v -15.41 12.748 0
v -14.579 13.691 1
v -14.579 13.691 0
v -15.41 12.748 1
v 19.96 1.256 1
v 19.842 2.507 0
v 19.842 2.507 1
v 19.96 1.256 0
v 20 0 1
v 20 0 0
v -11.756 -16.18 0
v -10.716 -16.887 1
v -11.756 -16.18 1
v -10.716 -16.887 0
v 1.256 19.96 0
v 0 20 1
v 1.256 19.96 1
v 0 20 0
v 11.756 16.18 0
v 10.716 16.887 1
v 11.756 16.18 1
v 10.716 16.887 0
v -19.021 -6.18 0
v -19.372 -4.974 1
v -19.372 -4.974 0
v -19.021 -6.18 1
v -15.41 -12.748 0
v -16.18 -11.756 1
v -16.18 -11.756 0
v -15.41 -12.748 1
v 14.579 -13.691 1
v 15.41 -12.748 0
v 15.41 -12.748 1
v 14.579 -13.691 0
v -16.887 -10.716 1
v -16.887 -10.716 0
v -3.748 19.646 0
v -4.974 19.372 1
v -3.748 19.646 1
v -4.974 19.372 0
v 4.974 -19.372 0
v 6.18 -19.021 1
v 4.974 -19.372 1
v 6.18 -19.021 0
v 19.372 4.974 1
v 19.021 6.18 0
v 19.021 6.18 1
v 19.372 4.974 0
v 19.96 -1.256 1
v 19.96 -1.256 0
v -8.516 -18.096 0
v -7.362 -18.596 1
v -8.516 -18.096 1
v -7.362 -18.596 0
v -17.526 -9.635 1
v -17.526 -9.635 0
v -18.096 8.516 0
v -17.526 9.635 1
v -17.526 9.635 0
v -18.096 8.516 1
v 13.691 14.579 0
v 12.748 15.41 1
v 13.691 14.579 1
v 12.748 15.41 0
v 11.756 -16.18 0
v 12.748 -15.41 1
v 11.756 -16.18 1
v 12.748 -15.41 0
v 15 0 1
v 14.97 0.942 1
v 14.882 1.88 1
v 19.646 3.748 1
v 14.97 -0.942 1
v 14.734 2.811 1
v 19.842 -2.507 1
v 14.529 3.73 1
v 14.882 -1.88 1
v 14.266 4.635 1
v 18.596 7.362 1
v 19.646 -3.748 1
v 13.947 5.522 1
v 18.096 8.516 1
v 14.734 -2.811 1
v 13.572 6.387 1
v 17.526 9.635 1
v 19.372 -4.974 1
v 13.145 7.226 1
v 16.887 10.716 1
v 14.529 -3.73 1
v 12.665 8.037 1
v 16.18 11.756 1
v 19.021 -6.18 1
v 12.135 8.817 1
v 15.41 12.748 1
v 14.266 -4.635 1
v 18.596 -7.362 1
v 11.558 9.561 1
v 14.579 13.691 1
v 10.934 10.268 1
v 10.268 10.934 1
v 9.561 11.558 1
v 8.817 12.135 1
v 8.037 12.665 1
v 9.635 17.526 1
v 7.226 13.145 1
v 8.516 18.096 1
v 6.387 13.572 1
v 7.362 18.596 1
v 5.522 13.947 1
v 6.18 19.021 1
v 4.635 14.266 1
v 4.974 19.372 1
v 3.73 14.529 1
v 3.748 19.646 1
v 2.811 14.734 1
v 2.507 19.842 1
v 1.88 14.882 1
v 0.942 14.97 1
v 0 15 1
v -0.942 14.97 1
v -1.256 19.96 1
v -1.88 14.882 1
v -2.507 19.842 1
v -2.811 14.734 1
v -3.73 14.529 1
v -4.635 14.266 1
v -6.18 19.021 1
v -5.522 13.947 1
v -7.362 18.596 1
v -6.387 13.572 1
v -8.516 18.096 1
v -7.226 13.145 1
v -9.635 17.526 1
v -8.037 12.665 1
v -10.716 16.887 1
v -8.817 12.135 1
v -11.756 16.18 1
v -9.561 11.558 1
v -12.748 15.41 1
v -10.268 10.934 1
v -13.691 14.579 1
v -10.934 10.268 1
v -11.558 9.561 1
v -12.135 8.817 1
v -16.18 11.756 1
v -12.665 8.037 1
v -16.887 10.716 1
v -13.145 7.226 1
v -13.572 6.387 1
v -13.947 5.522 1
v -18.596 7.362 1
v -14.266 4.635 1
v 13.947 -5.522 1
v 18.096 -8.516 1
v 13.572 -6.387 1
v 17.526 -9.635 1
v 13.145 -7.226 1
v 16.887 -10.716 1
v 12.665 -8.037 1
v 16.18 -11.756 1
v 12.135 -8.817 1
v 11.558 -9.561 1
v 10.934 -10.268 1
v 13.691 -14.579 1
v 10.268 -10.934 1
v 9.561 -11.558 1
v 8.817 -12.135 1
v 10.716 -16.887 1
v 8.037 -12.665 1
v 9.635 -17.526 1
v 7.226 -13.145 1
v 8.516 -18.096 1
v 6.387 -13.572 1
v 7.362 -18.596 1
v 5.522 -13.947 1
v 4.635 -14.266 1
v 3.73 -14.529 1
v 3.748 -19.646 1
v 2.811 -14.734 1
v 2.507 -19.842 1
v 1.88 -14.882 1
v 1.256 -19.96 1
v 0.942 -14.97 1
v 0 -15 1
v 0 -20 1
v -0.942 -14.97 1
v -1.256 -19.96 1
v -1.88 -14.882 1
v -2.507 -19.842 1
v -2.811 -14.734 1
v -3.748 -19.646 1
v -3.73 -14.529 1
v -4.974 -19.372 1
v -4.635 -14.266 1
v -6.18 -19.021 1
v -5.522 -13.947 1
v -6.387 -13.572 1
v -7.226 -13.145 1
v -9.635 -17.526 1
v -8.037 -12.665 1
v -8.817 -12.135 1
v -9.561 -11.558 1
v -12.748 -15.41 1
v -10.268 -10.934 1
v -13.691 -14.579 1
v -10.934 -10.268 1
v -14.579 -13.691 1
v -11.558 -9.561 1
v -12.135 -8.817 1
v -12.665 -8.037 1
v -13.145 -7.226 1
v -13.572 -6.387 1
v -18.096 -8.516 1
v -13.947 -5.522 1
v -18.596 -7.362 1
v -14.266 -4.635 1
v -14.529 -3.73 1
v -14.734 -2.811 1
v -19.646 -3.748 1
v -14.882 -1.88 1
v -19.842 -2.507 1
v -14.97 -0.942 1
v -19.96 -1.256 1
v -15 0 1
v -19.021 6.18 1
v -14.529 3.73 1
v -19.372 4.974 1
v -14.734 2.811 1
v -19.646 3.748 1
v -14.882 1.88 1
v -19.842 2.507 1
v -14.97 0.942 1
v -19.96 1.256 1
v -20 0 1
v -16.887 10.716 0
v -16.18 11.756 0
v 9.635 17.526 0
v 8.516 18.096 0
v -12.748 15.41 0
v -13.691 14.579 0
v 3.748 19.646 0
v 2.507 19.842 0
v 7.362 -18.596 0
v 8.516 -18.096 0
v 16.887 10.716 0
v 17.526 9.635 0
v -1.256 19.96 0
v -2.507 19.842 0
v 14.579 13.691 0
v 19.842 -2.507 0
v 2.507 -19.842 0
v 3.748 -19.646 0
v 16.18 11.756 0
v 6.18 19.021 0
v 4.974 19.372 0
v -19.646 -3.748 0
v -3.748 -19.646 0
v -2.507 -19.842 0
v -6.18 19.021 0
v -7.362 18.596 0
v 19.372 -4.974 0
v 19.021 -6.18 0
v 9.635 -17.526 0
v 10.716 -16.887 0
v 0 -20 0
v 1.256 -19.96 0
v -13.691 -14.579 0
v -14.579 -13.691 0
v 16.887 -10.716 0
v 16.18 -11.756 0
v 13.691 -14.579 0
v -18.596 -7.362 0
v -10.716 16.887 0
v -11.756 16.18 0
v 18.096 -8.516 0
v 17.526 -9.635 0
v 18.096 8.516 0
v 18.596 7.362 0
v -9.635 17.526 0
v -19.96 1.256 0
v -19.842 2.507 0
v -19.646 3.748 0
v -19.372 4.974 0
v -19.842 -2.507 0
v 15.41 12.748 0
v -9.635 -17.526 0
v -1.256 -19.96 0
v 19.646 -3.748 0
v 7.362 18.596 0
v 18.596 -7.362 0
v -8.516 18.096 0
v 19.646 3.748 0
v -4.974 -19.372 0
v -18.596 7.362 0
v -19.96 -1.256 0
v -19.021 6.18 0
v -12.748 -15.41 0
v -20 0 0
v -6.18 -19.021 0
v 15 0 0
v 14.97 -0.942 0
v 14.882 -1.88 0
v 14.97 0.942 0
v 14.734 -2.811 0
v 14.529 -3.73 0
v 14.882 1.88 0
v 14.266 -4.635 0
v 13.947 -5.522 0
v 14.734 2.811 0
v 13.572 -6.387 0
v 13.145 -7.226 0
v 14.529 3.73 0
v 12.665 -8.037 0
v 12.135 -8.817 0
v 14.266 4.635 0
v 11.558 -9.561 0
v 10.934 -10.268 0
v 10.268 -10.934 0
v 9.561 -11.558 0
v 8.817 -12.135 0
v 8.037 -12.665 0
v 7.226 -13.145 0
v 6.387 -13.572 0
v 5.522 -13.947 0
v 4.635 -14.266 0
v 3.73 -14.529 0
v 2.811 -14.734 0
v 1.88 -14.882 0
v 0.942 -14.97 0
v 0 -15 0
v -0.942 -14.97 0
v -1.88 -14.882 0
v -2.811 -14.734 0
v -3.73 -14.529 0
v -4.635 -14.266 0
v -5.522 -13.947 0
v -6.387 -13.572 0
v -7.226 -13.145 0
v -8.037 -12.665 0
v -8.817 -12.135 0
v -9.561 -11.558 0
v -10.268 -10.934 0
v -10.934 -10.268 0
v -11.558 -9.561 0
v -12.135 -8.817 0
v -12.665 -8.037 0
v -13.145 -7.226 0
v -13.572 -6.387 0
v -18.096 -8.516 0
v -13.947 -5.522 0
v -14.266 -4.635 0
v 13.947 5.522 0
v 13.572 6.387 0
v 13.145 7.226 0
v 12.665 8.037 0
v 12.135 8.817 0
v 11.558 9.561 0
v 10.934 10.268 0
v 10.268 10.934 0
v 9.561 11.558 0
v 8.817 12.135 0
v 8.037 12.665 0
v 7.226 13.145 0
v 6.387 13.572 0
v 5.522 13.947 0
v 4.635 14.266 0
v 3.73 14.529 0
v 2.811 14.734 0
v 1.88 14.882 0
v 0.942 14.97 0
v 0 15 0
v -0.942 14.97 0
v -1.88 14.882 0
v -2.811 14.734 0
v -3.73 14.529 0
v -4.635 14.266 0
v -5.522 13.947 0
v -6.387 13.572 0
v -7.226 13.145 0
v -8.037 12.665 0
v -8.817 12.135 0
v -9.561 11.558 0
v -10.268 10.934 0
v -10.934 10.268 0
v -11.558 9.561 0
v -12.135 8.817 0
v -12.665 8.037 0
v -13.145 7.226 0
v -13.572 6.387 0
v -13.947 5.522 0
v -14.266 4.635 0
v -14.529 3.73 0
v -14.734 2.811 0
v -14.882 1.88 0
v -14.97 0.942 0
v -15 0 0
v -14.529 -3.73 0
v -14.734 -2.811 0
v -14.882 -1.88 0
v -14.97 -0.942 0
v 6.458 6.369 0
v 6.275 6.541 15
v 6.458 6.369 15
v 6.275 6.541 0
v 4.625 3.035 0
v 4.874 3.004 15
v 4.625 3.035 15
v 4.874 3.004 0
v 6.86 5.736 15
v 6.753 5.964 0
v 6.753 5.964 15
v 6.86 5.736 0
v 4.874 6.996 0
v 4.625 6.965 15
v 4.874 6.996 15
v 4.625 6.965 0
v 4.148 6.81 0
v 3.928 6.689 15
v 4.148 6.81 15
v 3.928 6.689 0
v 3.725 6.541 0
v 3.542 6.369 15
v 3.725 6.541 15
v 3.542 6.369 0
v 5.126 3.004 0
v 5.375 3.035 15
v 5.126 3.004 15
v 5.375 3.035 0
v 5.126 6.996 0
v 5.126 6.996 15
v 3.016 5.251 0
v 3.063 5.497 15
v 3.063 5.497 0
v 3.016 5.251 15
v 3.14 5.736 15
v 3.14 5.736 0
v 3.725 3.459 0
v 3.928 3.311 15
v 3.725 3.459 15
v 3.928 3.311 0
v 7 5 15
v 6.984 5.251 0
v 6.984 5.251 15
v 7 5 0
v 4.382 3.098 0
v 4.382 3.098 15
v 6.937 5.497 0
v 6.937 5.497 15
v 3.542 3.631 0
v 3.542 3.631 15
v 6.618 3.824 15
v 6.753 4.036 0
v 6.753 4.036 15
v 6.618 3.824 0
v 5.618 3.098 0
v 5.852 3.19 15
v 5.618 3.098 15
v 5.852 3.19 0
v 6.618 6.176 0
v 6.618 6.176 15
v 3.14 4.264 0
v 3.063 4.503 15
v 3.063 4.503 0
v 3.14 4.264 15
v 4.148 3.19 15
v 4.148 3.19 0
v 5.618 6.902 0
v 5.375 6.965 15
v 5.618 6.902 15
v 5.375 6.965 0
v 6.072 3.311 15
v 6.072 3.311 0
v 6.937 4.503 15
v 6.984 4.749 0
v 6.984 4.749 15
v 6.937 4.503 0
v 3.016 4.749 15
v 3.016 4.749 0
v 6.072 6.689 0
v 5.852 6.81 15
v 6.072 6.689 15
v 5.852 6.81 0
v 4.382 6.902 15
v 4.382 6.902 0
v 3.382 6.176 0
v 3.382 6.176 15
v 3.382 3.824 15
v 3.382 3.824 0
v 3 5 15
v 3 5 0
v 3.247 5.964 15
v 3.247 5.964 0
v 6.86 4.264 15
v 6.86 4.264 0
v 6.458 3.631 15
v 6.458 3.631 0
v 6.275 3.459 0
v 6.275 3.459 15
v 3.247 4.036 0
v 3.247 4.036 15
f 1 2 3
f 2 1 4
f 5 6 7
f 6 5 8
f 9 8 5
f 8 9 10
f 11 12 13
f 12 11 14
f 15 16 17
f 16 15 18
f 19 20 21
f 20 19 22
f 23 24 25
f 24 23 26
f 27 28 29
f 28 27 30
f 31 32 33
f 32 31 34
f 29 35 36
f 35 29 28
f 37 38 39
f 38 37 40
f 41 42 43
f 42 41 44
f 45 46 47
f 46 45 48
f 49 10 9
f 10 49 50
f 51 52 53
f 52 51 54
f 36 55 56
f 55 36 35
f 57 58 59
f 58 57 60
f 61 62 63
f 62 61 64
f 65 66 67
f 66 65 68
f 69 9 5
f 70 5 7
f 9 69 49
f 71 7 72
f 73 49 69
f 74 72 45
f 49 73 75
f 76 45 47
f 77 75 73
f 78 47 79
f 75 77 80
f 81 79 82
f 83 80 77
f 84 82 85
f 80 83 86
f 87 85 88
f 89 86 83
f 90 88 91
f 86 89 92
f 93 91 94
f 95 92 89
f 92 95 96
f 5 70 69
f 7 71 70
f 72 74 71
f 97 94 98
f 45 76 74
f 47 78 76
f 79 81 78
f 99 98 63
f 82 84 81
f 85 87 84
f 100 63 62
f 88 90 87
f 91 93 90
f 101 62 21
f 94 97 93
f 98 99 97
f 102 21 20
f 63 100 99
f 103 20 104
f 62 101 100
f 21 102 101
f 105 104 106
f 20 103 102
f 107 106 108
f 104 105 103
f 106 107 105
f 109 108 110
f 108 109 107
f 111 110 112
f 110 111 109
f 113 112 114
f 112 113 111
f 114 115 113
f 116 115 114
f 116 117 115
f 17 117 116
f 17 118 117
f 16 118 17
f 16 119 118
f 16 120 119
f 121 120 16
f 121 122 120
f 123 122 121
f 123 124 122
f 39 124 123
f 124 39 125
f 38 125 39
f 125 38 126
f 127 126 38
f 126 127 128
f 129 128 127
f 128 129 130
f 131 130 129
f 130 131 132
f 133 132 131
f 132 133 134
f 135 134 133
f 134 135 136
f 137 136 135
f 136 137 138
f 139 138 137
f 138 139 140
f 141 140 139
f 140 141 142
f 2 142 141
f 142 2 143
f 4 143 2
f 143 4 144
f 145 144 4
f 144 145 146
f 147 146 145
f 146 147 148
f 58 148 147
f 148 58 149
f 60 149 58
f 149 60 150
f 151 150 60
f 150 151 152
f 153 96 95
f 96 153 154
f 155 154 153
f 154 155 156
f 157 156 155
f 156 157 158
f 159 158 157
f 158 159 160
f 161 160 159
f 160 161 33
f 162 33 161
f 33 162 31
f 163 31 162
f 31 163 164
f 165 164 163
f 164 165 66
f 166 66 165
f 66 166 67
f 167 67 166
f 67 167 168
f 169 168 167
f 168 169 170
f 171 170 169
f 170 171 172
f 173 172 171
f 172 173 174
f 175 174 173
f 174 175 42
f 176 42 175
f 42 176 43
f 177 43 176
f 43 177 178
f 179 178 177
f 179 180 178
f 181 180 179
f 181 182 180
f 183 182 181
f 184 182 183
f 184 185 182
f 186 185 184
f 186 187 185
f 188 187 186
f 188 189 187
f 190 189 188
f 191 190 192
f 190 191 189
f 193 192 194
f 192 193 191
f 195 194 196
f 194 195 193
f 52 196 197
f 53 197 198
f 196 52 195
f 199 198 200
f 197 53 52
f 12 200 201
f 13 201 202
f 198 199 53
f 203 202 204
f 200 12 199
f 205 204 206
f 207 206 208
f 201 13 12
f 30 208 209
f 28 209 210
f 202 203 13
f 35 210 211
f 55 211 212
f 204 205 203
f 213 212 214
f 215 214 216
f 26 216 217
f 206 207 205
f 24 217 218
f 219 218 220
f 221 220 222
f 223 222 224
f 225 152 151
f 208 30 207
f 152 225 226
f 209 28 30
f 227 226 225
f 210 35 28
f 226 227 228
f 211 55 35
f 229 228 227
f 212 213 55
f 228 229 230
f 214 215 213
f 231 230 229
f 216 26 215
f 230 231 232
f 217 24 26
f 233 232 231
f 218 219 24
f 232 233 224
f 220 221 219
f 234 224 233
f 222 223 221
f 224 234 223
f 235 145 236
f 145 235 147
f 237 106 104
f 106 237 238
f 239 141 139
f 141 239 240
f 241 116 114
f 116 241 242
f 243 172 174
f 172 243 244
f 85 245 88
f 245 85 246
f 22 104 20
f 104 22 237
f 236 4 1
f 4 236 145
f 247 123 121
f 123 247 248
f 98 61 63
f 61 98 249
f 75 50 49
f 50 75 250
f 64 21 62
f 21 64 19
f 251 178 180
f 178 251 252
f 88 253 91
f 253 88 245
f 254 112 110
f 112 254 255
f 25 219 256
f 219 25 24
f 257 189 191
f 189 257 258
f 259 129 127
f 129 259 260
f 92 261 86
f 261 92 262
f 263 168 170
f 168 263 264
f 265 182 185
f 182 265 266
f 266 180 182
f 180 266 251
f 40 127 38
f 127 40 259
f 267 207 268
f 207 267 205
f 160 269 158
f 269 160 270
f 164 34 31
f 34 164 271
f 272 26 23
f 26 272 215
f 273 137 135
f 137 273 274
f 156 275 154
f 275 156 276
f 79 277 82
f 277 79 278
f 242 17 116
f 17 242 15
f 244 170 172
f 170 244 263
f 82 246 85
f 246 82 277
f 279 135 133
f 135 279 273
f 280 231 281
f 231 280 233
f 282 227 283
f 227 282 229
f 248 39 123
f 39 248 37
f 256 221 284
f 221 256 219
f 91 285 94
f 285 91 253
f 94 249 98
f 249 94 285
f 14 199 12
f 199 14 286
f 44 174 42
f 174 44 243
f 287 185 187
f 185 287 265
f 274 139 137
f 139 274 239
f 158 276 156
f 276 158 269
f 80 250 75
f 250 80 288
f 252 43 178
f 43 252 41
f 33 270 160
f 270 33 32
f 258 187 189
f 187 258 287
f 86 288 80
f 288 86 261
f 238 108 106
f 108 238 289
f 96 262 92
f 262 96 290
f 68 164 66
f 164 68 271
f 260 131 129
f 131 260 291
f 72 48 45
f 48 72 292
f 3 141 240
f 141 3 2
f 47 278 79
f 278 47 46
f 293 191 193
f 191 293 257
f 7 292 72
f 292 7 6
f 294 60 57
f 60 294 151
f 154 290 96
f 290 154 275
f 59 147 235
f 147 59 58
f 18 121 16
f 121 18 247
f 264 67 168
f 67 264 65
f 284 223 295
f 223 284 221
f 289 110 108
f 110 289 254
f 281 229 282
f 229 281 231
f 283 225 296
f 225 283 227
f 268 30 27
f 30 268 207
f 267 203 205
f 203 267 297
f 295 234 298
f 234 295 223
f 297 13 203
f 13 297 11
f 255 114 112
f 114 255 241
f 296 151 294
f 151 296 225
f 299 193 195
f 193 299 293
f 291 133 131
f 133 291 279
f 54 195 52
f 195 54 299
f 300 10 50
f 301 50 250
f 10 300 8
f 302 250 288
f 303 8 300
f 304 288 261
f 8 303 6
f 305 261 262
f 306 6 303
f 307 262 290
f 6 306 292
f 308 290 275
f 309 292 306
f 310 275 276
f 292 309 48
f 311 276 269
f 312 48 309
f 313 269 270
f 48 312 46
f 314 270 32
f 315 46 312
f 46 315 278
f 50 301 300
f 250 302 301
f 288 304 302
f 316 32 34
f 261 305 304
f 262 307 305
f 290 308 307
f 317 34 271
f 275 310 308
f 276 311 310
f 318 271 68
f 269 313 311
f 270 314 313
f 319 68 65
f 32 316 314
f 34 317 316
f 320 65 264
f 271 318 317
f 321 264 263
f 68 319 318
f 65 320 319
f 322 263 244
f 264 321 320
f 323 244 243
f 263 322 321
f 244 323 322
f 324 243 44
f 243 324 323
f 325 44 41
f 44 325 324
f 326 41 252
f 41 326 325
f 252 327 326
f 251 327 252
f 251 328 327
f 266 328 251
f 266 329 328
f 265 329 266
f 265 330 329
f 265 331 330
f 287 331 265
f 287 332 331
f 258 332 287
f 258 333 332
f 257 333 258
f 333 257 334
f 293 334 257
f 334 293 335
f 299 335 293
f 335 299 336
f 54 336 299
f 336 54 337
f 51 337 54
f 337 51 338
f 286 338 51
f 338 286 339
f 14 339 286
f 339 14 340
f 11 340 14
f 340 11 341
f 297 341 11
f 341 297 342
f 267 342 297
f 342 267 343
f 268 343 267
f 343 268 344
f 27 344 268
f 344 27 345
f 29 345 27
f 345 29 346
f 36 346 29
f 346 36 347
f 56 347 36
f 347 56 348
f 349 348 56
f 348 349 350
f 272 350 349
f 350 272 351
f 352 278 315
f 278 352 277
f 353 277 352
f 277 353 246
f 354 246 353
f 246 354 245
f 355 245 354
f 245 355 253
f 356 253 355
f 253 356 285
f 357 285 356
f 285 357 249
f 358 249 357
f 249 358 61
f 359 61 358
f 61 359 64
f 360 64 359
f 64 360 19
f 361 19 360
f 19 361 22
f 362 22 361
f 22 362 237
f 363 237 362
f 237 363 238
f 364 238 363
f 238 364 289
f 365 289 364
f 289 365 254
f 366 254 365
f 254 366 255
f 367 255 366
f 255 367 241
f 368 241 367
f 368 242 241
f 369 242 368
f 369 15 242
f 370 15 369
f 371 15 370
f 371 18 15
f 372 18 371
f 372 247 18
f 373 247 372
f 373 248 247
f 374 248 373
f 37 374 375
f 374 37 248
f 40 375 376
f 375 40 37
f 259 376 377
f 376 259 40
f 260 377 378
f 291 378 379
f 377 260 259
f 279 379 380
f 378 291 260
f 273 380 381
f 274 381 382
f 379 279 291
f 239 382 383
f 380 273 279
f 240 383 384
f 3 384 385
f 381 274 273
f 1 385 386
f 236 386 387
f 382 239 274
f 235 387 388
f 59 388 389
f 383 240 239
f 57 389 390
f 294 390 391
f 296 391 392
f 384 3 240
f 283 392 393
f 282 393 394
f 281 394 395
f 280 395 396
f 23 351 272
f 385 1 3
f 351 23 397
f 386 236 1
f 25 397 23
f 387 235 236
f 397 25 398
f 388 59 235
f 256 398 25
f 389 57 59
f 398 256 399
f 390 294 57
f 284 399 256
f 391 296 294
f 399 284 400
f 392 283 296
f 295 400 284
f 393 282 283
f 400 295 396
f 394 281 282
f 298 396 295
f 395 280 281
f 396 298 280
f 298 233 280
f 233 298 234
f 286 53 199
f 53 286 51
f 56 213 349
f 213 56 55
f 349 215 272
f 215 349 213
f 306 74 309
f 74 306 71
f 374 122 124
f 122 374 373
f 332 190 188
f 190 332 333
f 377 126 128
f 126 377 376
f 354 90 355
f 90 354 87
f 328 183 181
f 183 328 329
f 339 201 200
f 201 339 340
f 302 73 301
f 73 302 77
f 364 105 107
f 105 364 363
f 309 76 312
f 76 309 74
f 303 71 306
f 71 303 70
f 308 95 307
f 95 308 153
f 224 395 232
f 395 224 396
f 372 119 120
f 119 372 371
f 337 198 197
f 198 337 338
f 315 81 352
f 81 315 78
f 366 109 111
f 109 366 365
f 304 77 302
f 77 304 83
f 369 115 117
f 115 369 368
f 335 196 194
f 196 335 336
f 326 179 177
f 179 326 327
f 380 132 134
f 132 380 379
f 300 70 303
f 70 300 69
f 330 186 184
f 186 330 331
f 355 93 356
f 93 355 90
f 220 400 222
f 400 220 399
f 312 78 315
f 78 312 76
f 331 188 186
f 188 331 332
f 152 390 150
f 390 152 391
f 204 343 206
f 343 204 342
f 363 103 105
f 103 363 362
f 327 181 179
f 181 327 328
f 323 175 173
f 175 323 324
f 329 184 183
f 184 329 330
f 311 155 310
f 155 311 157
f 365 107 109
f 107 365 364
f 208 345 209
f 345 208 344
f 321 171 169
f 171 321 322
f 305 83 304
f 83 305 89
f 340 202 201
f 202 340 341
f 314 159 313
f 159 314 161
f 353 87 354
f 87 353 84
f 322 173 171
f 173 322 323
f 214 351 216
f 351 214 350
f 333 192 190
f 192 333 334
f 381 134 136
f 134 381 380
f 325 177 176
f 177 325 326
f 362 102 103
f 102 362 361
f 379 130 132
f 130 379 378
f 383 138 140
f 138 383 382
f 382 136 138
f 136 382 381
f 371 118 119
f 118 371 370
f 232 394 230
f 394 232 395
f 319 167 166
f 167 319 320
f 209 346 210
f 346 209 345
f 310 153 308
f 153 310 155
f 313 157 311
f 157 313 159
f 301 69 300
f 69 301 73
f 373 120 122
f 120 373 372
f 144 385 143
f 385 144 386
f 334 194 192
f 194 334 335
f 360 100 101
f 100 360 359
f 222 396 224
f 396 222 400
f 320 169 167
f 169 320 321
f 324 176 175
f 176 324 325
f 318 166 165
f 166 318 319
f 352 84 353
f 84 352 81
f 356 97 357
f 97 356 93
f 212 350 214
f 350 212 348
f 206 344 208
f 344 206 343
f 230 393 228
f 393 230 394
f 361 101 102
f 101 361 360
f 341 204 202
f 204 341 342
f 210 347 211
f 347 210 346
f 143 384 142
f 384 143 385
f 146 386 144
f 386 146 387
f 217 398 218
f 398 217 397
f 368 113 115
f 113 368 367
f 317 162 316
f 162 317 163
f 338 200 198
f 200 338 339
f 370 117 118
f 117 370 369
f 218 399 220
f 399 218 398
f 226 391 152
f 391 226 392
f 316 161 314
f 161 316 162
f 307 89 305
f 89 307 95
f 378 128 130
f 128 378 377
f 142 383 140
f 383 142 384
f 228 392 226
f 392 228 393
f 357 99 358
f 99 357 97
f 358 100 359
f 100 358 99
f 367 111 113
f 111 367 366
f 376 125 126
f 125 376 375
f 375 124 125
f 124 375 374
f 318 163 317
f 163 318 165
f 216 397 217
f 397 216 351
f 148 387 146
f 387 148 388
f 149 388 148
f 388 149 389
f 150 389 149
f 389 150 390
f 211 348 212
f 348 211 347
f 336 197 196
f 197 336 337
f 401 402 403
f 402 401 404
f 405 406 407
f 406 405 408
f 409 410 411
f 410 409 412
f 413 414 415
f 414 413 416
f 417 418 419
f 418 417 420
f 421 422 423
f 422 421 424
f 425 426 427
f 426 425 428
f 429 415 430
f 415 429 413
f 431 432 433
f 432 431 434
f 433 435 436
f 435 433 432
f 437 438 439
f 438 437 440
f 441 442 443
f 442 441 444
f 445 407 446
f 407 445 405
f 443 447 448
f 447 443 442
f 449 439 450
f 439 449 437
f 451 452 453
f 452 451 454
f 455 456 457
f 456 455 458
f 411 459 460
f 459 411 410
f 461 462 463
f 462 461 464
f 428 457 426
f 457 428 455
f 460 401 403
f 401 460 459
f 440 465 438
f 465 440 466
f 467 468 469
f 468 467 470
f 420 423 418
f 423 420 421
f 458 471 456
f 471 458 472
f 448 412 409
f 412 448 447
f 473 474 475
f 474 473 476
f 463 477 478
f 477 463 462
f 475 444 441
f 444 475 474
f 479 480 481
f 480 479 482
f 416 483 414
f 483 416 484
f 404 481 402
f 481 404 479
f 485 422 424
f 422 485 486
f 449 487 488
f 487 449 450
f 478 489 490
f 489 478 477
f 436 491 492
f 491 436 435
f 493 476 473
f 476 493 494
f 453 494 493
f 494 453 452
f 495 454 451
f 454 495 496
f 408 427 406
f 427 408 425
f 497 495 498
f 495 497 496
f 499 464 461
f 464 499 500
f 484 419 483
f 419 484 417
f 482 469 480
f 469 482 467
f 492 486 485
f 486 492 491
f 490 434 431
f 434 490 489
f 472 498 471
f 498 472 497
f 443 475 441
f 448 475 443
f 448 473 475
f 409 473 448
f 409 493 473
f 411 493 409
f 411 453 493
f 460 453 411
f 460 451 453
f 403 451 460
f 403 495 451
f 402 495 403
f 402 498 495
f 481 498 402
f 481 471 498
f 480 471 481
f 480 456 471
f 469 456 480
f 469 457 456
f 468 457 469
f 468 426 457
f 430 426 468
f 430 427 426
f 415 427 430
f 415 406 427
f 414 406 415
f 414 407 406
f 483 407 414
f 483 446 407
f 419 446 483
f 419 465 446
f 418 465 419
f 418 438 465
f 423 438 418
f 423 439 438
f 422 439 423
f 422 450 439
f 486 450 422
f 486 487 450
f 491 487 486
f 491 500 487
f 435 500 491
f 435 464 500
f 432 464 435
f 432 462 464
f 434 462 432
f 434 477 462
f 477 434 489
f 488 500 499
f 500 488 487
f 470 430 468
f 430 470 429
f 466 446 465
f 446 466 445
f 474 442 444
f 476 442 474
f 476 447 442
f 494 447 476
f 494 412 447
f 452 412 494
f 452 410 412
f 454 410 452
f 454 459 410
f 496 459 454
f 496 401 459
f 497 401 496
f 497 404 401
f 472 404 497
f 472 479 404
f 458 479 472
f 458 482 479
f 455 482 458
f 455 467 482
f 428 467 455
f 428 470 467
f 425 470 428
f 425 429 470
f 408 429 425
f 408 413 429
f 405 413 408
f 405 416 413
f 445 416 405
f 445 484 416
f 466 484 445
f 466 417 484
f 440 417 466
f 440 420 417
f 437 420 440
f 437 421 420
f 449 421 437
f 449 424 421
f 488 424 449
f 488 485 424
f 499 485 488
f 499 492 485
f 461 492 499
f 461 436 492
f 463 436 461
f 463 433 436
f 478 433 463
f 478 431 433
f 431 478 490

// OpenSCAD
// Spacer Ring Parameters
module spacer_ring() {
    difference() {
        // Outer cylinder
        cylinder(h=1, r=20, $fn=100); // Reduced thickness from 1.5 to 1
        // Inner cylinder (hollow center)
        cylinder(h=1, r=15, $fn=100); // Reduced thickness from 1.5 to 1
    }
}

// Bolt Parameters
module bolt() {
    cylinder(h=15, r=2, $fn=50); // Increased length from 10 to 15
}

// Generate Spacer Rings
translate([0, 0, 0]) spacer_ring(); // Layer 1

// Generate Bolts
translate([5, 5, 0]) bolt(); // Example position for bolt
